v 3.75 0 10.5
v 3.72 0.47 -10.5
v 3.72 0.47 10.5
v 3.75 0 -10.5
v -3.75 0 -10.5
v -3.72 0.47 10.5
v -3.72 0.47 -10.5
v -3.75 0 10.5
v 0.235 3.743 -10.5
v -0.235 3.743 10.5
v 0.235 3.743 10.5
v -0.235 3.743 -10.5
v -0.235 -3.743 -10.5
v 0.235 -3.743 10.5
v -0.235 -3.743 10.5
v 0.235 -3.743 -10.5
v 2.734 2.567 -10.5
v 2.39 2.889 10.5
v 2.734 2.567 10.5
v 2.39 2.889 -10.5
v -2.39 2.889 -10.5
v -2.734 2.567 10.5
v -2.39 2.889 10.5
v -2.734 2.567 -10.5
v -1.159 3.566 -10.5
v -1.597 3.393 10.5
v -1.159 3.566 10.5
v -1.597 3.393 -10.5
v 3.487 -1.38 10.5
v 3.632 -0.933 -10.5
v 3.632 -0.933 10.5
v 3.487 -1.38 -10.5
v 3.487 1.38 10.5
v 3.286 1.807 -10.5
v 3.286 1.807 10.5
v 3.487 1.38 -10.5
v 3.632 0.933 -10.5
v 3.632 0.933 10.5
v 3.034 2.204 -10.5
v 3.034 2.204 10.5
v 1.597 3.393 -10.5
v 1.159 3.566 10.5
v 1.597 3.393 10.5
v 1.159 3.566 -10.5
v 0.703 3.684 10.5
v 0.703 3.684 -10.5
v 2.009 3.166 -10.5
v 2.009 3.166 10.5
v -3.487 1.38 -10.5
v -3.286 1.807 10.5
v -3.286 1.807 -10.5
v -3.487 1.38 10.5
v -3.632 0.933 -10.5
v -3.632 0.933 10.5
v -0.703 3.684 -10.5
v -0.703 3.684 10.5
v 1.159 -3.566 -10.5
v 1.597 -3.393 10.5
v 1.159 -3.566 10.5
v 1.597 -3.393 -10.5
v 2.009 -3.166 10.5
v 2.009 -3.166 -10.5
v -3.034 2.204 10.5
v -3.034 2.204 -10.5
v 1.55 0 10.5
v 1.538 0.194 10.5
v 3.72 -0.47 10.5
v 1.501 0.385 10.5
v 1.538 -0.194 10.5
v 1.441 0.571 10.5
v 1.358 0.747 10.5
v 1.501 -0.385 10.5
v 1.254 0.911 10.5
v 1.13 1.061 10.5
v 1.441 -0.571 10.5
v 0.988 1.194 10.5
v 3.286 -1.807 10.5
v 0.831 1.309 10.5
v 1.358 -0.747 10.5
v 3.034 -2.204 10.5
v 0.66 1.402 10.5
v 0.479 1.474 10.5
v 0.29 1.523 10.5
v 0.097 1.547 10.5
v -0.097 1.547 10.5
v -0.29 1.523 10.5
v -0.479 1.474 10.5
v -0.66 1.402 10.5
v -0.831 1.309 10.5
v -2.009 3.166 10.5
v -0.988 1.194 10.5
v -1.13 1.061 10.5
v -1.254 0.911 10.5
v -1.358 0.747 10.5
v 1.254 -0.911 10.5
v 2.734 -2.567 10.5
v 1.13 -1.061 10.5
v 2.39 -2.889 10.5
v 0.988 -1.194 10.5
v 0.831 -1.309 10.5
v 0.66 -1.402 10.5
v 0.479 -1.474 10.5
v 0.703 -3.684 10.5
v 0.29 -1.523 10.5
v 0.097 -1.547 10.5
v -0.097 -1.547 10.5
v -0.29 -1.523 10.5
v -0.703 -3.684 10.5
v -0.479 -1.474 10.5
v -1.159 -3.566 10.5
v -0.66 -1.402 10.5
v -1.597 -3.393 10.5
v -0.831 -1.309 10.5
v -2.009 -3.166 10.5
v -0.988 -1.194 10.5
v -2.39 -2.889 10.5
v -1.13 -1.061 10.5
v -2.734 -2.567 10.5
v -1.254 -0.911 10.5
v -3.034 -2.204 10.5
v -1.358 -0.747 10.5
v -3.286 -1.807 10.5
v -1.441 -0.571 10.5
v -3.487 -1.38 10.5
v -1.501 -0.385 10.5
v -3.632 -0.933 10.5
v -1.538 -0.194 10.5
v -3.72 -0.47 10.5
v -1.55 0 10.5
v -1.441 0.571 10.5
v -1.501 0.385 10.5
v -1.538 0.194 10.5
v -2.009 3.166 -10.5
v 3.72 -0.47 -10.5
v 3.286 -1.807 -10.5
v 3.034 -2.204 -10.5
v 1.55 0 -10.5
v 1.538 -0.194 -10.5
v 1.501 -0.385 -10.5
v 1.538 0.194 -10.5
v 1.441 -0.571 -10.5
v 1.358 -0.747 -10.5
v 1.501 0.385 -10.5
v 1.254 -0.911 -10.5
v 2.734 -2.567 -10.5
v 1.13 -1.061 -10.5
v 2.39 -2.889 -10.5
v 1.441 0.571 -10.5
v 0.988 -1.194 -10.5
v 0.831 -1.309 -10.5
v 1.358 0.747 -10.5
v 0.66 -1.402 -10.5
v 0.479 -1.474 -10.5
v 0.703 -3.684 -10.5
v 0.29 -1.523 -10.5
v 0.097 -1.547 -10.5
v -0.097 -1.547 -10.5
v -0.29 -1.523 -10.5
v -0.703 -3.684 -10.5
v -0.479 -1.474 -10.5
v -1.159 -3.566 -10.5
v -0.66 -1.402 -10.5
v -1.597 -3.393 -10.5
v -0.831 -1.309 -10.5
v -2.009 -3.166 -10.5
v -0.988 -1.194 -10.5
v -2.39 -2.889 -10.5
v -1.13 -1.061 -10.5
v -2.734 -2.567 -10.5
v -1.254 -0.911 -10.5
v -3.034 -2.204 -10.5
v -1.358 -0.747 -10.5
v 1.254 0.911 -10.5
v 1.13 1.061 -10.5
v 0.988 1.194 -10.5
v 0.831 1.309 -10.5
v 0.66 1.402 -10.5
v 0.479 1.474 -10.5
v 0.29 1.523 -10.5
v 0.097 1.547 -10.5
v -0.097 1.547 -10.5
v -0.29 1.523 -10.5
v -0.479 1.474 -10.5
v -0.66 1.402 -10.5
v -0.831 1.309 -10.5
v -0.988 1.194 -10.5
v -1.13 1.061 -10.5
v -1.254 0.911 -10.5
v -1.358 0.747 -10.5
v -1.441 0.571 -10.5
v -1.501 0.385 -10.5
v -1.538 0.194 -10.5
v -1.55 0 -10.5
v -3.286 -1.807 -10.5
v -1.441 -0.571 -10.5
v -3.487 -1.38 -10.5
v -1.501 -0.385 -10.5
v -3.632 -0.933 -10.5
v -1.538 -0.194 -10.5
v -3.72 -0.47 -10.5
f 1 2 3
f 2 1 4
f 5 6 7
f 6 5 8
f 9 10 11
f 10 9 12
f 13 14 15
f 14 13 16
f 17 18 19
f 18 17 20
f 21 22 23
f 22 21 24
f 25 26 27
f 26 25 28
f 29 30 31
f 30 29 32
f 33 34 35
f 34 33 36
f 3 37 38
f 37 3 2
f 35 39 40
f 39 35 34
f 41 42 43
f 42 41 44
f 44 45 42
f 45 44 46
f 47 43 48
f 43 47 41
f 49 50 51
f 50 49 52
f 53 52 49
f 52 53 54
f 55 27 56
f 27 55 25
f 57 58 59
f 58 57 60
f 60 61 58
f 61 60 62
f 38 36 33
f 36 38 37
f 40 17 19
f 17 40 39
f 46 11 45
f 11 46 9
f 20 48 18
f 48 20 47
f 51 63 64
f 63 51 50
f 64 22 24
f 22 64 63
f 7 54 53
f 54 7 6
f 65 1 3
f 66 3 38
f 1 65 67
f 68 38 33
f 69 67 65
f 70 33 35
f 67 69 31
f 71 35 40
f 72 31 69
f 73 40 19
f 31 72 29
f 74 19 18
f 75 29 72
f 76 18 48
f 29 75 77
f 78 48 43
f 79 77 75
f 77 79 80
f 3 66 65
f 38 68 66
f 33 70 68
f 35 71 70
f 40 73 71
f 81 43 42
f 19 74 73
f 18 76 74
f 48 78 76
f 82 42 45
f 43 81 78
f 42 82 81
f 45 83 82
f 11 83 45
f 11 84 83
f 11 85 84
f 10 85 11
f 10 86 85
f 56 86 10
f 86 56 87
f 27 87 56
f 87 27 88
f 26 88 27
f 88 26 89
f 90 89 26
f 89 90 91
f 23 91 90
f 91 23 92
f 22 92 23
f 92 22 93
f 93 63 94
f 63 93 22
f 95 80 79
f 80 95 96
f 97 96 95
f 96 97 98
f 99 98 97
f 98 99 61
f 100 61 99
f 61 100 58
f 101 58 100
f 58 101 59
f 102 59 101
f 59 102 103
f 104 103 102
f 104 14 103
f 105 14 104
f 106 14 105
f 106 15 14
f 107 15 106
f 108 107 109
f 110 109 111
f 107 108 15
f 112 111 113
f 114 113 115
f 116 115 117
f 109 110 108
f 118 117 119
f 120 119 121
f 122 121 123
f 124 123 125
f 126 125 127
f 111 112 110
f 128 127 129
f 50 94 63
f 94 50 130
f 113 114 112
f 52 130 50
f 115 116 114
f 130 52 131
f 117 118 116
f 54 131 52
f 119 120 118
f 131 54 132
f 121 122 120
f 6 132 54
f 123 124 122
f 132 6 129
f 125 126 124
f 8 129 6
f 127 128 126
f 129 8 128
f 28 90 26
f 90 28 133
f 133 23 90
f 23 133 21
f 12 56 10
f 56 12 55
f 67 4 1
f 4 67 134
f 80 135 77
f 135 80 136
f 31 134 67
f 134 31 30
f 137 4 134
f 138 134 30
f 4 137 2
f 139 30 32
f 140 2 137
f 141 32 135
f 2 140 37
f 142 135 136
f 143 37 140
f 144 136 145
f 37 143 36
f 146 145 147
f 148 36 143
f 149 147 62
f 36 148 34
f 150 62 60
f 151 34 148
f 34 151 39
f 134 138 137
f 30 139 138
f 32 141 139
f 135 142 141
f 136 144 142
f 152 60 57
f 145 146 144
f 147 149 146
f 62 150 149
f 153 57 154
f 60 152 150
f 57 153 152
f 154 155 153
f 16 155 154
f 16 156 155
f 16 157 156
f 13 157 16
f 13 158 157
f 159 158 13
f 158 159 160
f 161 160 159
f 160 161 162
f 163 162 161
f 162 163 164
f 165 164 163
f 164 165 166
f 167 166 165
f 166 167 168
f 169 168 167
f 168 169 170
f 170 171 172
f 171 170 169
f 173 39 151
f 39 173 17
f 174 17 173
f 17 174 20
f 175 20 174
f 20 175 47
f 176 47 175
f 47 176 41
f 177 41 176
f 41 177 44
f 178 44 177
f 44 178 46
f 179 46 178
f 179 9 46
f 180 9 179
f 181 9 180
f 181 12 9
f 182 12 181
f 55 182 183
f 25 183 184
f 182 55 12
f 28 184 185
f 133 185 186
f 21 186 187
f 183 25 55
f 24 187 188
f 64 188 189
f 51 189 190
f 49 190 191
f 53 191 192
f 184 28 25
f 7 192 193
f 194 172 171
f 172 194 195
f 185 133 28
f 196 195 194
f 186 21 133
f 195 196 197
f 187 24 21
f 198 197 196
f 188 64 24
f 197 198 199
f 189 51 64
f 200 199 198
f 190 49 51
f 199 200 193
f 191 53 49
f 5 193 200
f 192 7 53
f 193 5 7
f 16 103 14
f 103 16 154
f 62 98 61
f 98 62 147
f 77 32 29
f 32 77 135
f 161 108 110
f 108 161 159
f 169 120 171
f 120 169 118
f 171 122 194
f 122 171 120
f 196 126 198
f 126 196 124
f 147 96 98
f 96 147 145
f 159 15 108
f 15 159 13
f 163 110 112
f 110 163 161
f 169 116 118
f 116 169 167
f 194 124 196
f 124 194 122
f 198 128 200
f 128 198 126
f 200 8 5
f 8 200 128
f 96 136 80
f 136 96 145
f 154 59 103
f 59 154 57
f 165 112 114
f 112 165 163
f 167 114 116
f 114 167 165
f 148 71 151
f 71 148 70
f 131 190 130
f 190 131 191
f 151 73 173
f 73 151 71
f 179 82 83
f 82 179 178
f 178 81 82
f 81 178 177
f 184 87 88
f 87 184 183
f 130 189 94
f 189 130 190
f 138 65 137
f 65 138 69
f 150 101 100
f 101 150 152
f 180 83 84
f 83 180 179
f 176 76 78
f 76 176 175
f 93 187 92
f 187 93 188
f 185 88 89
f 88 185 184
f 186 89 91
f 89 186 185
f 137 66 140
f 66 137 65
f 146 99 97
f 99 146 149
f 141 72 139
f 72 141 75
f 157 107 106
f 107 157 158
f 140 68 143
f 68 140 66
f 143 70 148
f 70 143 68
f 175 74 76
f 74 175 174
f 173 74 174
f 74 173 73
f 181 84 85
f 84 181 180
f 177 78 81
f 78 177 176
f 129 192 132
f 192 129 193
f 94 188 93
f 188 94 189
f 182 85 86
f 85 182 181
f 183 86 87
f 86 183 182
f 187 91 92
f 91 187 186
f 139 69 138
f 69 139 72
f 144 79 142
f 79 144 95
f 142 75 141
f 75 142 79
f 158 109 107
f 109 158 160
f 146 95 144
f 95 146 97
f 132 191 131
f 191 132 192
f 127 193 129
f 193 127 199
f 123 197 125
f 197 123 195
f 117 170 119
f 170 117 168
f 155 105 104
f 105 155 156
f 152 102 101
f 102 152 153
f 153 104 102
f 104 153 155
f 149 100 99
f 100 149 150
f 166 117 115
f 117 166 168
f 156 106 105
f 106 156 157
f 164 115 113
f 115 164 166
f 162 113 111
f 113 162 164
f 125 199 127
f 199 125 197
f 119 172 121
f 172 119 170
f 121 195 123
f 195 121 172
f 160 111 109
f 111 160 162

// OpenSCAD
$fn = 50;


difference() {
	union() {
		translate(v = [0, 0, -10.5000000000]) {
			cylinder(h = 21, r = 3.7500000000);
		}
	}
	union() {
		translate(v = [0, 0, -100.0000000000]) {
			cylinder(h = 200, r = 1.5500000000);
		}
	}
}
